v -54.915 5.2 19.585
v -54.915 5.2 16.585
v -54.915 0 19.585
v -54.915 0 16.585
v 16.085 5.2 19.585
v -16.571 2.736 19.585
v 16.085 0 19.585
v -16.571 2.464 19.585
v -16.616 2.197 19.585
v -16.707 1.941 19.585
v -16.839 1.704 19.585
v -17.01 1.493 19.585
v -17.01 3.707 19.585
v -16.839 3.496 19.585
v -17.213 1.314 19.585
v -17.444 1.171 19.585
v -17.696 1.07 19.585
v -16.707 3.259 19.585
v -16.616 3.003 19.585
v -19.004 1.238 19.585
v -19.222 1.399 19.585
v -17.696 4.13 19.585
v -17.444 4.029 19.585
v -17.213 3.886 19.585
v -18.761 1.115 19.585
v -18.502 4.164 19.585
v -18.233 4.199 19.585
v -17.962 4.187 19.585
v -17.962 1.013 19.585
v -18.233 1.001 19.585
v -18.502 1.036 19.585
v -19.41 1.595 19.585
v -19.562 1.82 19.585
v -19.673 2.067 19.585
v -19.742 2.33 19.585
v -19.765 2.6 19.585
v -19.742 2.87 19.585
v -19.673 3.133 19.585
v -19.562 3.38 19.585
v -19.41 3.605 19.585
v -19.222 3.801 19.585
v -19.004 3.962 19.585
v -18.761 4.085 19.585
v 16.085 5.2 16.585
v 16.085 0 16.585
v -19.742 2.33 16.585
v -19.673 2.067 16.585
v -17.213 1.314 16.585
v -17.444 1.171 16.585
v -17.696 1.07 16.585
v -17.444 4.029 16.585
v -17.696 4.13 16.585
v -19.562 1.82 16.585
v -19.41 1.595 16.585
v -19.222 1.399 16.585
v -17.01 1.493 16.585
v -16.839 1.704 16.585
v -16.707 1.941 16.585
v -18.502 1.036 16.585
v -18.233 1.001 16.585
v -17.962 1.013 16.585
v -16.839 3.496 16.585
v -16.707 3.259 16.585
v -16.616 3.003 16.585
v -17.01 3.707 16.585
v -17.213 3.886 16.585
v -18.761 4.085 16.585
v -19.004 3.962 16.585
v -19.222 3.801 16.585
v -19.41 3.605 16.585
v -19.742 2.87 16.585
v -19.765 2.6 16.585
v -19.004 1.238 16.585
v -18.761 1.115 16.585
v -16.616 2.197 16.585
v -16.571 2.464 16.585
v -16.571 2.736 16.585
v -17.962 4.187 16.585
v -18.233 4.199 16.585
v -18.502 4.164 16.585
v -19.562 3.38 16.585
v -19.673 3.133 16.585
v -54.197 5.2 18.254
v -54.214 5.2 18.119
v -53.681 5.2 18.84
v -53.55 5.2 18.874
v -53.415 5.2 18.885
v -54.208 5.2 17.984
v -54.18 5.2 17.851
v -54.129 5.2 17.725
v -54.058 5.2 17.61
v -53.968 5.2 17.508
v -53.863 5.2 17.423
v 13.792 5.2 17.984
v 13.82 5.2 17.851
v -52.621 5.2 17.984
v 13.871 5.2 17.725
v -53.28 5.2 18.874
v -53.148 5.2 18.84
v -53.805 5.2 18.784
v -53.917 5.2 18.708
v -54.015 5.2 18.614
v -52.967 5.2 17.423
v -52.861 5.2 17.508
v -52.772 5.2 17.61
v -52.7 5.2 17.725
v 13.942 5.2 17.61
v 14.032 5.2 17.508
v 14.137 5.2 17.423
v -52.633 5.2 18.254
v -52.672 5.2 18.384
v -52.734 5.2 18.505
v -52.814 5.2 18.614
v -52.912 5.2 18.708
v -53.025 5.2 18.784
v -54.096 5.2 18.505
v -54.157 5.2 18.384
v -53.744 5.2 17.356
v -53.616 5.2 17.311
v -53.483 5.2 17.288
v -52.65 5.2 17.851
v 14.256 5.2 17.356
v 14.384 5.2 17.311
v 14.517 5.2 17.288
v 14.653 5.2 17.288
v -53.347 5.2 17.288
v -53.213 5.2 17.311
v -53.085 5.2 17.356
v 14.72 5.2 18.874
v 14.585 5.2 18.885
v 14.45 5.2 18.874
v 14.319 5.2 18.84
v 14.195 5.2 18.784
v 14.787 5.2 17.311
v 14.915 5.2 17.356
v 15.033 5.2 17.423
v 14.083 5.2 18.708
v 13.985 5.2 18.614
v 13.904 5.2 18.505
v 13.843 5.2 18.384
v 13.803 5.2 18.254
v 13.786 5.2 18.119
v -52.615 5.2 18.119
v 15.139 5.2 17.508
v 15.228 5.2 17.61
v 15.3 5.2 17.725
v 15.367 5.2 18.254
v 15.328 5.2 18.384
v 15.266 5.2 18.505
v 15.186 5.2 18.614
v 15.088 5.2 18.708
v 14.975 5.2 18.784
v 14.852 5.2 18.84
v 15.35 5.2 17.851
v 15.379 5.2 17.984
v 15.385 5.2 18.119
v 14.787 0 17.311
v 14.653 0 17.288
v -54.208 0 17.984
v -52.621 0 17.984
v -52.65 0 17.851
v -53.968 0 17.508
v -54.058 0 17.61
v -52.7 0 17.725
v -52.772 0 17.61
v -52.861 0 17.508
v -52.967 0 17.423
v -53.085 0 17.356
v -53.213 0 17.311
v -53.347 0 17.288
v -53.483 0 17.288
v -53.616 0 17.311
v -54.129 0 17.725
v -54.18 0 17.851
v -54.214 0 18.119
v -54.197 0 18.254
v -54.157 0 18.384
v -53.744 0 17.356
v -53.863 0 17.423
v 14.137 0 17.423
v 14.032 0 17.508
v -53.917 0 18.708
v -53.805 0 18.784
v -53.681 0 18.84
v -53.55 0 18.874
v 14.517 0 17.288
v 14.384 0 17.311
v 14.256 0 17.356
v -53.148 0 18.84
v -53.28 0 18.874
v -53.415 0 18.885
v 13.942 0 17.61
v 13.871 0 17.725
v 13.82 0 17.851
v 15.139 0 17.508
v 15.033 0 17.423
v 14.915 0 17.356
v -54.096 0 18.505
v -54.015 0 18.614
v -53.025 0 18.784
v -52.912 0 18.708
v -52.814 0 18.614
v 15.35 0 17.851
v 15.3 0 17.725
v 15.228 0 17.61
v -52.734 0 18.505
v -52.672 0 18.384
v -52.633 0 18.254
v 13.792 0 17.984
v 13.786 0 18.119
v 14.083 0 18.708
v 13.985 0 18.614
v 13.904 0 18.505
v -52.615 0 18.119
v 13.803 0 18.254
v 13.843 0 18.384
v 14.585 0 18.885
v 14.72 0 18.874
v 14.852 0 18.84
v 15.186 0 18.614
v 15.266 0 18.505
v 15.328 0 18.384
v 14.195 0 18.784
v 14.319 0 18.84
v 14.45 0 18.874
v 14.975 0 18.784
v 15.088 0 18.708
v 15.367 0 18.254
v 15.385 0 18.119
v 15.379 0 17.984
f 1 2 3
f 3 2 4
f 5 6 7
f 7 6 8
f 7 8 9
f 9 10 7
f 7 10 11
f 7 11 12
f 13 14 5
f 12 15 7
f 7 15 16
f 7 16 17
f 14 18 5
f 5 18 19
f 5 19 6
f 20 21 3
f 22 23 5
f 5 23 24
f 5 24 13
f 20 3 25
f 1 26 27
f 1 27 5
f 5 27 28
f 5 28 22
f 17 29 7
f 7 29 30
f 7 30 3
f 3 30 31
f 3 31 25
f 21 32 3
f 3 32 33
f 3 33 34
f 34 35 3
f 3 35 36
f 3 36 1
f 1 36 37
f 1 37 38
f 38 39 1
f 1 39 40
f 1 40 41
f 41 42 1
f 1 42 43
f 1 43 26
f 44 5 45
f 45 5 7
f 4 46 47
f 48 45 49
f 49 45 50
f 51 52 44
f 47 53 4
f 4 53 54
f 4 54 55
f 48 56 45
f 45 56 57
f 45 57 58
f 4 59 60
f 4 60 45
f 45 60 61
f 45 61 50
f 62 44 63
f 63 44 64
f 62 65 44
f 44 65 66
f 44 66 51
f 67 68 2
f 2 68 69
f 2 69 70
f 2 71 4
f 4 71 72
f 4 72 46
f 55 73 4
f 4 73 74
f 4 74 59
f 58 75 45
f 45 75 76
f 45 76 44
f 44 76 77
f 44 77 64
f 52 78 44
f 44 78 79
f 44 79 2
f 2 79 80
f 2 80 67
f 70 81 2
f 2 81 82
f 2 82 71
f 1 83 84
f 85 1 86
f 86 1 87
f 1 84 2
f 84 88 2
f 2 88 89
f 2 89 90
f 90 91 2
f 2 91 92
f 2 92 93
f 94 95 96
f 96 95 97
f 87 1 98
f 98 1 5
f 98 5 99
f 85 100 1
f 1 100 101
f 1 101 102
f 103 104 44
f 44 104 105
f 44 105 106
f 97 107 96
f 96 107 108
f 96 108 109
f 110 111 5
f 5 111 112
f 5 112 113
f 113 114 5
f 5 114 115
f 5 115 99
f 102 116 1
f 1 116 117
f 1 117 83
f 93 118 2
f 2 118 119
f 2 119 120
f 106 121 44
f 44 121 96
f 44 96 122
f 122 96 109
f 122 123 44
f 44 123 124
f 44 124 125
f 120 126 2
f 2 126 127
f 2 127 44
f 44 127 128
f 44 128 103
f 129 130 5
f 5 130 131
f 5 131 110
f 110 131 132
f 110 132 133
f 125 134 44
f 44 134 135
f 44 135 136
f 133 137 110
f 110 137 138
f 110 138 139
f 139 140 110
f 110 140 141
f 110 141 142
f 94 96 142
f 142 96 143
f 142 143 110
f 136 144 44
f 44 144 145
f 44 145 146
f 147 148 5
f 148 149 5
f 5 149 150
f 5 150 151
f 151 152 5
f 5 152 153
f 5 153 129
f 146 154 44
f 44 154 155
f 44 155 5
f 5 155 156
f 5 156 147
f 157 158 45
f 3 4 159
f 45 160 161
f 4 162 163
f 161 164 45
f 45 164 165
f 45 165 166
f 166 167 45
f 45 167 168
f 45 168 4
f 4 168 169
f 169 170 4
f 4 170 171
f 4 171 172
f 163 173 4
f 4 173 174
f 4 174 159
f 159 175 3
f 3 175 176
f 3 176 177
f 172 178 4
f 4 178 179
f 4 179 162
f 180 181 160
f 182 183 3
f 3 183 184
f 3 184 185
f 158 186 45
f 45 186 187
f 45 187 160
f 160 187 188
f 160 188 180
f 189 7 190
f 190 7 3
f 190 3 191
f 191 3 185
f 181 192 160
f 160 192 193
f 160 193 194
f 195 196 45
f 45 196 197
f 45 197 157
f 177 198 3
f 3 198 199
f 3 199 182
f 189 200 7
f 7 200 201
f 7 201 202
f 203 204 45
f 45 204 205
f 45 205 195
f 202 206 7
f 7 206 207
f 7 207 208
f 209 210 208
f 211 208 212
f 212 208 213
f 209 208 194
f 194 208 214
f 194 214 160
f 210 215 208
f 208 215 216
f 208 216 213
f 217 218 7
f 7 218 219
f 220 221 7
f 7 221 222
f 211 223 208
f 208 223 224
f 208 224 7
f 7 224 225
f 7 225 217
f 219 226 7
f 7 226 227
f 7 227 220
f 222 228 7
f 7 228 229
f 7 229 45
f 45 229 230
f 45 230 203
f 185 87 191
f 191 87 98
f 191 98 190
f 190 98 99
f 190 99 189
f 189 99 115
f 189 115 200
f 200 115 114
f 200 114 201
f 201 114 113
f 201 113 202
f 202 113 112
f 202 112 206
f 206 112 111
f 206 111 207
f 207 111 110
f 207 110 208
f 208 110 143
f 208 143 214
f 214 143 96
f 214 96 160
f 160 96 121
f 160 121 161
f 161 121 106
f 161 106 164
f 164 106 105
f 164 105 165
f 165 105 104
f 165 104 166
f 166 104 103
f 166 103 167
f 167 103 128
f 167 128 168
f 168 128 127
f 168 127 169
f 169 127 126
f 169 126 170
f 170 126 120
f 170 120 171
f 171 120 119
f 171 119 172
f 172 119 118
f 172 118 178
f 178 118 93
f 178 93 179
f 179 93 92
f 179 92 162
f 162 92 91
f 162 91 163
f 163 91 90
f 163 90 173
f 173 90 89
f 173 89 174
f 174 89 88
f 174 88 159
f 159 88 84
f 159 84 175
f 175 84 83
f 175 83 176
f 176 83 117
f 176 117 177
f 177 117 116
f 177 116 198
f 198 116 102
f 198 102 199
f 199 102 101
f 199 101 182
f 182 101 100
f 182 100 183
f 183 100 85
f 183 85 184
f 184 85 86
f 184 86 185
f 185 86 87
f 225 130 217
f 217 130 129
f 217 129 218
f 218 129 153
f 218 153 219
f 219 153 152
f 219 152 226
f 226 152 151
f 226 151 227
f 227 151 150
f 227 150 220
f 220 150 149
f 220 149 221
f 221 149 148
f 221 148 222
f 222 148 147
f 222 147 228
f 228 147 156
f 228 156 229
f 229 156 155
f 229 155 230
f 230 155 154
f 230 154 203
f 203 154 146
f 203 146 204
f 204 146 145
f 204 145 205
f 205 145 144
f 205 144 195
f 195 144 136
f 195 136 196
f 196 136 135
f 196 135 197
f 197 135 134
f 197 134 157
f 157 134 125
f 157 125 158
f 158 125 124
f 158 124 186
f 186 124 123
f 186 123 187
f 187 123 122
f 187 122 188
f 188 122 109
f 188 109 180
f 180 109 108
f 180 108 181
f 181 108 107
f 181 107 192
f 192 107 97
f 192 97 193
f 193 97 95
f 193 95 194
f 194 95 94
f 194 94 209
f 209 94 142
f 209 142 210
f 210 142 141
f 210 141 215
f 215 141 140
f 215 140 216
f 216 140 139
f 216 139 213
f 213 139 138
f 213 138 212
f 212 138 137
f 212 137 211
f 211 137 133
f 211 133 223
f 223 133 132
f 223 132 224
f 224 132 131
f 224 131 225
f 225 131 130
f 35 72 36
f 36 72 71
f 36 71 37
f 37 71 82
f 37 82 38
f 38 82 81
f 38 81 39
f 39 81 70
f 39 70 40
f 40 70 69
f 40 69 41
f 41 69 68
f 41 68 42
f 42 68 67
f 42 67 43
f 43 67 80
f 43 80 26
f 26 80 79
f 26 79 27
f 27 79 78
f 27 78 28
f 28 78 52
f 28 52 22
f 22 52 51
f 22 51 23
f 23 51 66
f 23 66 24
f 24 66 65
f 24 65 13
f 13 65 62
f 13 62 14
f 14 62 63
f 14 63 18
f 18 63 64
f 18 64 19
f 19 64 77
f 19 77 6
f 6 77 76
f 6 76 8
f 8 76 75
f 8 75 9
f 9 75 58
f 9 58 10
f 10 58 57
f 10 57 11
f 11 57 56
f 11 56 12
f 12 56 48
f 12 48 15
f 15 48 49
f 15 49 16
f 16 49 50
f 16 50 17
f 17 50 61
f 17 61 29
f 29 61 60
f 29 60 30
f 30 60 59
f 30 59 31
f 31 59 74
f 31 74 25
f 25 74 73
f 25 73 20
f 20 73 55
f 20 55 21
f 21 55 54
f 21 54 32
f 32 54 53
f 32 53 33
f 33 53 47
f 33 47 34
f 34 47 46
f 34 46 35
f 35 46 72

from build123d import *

# Parameters (mm, degrees)
SKETCH1_W           = 71
SKETCH1_H           = 3
BOSS_EXTRUDE1_DEPTH = 5.2
SKETCH2_R           = 0.8
CUT_EXTRUDE1_DEPTH  = 5.2
SKETCH3_R           = 1.6
CUT_EXTRUDE2_DEPTH  = 5.2


with BuildPart() as part:
    # Sketch1 → Boss-Extrude1 (new body)
    with BuildSketch(Plane(origin=(0, 0, 0), x_dir=(1, 0, 0), z_dir=(0, 1, 0))):
        with Locations((-19.414749289, -18.085343374)):
            Rectangle(SKETCH1_W, SKETCH1_H)
    extrude(amount=BOSS_EXTRUDE1_DEPTH)

    # Sketch2 → Cut-Extrude1 (cut)
    with BuildSketch(Plane(origin=(0, 5.2, 0), x_dir=(1, 0, 0), z_dir=(0, 1, 0))):
        with Locations(Location((-53.414749289, -18.085343374, 0), (0, 0, 270))):
            Circle(SKETCH2_R)
        with Locations(Location((14.585250711, -18.085343374, 0), (0, 0, 270))):
            Circle(SKETCH2_R)
    extrude(amount=-CUT_EXTRUDE1_DEPTH, mode=Mode.SUBTRACT)

    # Sketch3 → Cut-Extrude2 (cut)
    with BuildSketch(Plane(origin=(0, 0, 16.585343374), x_dir=(-1, 0, 0), z_dir=(0, 0, -1))):
        with Locations((18.164749289, 2.6)):
            Circle(SKETCH3_R)
    extrude(amount=-CUT_EXTRUDE2_DEPTH, mode=Mode.SUBTRACT)


solid = part.part
